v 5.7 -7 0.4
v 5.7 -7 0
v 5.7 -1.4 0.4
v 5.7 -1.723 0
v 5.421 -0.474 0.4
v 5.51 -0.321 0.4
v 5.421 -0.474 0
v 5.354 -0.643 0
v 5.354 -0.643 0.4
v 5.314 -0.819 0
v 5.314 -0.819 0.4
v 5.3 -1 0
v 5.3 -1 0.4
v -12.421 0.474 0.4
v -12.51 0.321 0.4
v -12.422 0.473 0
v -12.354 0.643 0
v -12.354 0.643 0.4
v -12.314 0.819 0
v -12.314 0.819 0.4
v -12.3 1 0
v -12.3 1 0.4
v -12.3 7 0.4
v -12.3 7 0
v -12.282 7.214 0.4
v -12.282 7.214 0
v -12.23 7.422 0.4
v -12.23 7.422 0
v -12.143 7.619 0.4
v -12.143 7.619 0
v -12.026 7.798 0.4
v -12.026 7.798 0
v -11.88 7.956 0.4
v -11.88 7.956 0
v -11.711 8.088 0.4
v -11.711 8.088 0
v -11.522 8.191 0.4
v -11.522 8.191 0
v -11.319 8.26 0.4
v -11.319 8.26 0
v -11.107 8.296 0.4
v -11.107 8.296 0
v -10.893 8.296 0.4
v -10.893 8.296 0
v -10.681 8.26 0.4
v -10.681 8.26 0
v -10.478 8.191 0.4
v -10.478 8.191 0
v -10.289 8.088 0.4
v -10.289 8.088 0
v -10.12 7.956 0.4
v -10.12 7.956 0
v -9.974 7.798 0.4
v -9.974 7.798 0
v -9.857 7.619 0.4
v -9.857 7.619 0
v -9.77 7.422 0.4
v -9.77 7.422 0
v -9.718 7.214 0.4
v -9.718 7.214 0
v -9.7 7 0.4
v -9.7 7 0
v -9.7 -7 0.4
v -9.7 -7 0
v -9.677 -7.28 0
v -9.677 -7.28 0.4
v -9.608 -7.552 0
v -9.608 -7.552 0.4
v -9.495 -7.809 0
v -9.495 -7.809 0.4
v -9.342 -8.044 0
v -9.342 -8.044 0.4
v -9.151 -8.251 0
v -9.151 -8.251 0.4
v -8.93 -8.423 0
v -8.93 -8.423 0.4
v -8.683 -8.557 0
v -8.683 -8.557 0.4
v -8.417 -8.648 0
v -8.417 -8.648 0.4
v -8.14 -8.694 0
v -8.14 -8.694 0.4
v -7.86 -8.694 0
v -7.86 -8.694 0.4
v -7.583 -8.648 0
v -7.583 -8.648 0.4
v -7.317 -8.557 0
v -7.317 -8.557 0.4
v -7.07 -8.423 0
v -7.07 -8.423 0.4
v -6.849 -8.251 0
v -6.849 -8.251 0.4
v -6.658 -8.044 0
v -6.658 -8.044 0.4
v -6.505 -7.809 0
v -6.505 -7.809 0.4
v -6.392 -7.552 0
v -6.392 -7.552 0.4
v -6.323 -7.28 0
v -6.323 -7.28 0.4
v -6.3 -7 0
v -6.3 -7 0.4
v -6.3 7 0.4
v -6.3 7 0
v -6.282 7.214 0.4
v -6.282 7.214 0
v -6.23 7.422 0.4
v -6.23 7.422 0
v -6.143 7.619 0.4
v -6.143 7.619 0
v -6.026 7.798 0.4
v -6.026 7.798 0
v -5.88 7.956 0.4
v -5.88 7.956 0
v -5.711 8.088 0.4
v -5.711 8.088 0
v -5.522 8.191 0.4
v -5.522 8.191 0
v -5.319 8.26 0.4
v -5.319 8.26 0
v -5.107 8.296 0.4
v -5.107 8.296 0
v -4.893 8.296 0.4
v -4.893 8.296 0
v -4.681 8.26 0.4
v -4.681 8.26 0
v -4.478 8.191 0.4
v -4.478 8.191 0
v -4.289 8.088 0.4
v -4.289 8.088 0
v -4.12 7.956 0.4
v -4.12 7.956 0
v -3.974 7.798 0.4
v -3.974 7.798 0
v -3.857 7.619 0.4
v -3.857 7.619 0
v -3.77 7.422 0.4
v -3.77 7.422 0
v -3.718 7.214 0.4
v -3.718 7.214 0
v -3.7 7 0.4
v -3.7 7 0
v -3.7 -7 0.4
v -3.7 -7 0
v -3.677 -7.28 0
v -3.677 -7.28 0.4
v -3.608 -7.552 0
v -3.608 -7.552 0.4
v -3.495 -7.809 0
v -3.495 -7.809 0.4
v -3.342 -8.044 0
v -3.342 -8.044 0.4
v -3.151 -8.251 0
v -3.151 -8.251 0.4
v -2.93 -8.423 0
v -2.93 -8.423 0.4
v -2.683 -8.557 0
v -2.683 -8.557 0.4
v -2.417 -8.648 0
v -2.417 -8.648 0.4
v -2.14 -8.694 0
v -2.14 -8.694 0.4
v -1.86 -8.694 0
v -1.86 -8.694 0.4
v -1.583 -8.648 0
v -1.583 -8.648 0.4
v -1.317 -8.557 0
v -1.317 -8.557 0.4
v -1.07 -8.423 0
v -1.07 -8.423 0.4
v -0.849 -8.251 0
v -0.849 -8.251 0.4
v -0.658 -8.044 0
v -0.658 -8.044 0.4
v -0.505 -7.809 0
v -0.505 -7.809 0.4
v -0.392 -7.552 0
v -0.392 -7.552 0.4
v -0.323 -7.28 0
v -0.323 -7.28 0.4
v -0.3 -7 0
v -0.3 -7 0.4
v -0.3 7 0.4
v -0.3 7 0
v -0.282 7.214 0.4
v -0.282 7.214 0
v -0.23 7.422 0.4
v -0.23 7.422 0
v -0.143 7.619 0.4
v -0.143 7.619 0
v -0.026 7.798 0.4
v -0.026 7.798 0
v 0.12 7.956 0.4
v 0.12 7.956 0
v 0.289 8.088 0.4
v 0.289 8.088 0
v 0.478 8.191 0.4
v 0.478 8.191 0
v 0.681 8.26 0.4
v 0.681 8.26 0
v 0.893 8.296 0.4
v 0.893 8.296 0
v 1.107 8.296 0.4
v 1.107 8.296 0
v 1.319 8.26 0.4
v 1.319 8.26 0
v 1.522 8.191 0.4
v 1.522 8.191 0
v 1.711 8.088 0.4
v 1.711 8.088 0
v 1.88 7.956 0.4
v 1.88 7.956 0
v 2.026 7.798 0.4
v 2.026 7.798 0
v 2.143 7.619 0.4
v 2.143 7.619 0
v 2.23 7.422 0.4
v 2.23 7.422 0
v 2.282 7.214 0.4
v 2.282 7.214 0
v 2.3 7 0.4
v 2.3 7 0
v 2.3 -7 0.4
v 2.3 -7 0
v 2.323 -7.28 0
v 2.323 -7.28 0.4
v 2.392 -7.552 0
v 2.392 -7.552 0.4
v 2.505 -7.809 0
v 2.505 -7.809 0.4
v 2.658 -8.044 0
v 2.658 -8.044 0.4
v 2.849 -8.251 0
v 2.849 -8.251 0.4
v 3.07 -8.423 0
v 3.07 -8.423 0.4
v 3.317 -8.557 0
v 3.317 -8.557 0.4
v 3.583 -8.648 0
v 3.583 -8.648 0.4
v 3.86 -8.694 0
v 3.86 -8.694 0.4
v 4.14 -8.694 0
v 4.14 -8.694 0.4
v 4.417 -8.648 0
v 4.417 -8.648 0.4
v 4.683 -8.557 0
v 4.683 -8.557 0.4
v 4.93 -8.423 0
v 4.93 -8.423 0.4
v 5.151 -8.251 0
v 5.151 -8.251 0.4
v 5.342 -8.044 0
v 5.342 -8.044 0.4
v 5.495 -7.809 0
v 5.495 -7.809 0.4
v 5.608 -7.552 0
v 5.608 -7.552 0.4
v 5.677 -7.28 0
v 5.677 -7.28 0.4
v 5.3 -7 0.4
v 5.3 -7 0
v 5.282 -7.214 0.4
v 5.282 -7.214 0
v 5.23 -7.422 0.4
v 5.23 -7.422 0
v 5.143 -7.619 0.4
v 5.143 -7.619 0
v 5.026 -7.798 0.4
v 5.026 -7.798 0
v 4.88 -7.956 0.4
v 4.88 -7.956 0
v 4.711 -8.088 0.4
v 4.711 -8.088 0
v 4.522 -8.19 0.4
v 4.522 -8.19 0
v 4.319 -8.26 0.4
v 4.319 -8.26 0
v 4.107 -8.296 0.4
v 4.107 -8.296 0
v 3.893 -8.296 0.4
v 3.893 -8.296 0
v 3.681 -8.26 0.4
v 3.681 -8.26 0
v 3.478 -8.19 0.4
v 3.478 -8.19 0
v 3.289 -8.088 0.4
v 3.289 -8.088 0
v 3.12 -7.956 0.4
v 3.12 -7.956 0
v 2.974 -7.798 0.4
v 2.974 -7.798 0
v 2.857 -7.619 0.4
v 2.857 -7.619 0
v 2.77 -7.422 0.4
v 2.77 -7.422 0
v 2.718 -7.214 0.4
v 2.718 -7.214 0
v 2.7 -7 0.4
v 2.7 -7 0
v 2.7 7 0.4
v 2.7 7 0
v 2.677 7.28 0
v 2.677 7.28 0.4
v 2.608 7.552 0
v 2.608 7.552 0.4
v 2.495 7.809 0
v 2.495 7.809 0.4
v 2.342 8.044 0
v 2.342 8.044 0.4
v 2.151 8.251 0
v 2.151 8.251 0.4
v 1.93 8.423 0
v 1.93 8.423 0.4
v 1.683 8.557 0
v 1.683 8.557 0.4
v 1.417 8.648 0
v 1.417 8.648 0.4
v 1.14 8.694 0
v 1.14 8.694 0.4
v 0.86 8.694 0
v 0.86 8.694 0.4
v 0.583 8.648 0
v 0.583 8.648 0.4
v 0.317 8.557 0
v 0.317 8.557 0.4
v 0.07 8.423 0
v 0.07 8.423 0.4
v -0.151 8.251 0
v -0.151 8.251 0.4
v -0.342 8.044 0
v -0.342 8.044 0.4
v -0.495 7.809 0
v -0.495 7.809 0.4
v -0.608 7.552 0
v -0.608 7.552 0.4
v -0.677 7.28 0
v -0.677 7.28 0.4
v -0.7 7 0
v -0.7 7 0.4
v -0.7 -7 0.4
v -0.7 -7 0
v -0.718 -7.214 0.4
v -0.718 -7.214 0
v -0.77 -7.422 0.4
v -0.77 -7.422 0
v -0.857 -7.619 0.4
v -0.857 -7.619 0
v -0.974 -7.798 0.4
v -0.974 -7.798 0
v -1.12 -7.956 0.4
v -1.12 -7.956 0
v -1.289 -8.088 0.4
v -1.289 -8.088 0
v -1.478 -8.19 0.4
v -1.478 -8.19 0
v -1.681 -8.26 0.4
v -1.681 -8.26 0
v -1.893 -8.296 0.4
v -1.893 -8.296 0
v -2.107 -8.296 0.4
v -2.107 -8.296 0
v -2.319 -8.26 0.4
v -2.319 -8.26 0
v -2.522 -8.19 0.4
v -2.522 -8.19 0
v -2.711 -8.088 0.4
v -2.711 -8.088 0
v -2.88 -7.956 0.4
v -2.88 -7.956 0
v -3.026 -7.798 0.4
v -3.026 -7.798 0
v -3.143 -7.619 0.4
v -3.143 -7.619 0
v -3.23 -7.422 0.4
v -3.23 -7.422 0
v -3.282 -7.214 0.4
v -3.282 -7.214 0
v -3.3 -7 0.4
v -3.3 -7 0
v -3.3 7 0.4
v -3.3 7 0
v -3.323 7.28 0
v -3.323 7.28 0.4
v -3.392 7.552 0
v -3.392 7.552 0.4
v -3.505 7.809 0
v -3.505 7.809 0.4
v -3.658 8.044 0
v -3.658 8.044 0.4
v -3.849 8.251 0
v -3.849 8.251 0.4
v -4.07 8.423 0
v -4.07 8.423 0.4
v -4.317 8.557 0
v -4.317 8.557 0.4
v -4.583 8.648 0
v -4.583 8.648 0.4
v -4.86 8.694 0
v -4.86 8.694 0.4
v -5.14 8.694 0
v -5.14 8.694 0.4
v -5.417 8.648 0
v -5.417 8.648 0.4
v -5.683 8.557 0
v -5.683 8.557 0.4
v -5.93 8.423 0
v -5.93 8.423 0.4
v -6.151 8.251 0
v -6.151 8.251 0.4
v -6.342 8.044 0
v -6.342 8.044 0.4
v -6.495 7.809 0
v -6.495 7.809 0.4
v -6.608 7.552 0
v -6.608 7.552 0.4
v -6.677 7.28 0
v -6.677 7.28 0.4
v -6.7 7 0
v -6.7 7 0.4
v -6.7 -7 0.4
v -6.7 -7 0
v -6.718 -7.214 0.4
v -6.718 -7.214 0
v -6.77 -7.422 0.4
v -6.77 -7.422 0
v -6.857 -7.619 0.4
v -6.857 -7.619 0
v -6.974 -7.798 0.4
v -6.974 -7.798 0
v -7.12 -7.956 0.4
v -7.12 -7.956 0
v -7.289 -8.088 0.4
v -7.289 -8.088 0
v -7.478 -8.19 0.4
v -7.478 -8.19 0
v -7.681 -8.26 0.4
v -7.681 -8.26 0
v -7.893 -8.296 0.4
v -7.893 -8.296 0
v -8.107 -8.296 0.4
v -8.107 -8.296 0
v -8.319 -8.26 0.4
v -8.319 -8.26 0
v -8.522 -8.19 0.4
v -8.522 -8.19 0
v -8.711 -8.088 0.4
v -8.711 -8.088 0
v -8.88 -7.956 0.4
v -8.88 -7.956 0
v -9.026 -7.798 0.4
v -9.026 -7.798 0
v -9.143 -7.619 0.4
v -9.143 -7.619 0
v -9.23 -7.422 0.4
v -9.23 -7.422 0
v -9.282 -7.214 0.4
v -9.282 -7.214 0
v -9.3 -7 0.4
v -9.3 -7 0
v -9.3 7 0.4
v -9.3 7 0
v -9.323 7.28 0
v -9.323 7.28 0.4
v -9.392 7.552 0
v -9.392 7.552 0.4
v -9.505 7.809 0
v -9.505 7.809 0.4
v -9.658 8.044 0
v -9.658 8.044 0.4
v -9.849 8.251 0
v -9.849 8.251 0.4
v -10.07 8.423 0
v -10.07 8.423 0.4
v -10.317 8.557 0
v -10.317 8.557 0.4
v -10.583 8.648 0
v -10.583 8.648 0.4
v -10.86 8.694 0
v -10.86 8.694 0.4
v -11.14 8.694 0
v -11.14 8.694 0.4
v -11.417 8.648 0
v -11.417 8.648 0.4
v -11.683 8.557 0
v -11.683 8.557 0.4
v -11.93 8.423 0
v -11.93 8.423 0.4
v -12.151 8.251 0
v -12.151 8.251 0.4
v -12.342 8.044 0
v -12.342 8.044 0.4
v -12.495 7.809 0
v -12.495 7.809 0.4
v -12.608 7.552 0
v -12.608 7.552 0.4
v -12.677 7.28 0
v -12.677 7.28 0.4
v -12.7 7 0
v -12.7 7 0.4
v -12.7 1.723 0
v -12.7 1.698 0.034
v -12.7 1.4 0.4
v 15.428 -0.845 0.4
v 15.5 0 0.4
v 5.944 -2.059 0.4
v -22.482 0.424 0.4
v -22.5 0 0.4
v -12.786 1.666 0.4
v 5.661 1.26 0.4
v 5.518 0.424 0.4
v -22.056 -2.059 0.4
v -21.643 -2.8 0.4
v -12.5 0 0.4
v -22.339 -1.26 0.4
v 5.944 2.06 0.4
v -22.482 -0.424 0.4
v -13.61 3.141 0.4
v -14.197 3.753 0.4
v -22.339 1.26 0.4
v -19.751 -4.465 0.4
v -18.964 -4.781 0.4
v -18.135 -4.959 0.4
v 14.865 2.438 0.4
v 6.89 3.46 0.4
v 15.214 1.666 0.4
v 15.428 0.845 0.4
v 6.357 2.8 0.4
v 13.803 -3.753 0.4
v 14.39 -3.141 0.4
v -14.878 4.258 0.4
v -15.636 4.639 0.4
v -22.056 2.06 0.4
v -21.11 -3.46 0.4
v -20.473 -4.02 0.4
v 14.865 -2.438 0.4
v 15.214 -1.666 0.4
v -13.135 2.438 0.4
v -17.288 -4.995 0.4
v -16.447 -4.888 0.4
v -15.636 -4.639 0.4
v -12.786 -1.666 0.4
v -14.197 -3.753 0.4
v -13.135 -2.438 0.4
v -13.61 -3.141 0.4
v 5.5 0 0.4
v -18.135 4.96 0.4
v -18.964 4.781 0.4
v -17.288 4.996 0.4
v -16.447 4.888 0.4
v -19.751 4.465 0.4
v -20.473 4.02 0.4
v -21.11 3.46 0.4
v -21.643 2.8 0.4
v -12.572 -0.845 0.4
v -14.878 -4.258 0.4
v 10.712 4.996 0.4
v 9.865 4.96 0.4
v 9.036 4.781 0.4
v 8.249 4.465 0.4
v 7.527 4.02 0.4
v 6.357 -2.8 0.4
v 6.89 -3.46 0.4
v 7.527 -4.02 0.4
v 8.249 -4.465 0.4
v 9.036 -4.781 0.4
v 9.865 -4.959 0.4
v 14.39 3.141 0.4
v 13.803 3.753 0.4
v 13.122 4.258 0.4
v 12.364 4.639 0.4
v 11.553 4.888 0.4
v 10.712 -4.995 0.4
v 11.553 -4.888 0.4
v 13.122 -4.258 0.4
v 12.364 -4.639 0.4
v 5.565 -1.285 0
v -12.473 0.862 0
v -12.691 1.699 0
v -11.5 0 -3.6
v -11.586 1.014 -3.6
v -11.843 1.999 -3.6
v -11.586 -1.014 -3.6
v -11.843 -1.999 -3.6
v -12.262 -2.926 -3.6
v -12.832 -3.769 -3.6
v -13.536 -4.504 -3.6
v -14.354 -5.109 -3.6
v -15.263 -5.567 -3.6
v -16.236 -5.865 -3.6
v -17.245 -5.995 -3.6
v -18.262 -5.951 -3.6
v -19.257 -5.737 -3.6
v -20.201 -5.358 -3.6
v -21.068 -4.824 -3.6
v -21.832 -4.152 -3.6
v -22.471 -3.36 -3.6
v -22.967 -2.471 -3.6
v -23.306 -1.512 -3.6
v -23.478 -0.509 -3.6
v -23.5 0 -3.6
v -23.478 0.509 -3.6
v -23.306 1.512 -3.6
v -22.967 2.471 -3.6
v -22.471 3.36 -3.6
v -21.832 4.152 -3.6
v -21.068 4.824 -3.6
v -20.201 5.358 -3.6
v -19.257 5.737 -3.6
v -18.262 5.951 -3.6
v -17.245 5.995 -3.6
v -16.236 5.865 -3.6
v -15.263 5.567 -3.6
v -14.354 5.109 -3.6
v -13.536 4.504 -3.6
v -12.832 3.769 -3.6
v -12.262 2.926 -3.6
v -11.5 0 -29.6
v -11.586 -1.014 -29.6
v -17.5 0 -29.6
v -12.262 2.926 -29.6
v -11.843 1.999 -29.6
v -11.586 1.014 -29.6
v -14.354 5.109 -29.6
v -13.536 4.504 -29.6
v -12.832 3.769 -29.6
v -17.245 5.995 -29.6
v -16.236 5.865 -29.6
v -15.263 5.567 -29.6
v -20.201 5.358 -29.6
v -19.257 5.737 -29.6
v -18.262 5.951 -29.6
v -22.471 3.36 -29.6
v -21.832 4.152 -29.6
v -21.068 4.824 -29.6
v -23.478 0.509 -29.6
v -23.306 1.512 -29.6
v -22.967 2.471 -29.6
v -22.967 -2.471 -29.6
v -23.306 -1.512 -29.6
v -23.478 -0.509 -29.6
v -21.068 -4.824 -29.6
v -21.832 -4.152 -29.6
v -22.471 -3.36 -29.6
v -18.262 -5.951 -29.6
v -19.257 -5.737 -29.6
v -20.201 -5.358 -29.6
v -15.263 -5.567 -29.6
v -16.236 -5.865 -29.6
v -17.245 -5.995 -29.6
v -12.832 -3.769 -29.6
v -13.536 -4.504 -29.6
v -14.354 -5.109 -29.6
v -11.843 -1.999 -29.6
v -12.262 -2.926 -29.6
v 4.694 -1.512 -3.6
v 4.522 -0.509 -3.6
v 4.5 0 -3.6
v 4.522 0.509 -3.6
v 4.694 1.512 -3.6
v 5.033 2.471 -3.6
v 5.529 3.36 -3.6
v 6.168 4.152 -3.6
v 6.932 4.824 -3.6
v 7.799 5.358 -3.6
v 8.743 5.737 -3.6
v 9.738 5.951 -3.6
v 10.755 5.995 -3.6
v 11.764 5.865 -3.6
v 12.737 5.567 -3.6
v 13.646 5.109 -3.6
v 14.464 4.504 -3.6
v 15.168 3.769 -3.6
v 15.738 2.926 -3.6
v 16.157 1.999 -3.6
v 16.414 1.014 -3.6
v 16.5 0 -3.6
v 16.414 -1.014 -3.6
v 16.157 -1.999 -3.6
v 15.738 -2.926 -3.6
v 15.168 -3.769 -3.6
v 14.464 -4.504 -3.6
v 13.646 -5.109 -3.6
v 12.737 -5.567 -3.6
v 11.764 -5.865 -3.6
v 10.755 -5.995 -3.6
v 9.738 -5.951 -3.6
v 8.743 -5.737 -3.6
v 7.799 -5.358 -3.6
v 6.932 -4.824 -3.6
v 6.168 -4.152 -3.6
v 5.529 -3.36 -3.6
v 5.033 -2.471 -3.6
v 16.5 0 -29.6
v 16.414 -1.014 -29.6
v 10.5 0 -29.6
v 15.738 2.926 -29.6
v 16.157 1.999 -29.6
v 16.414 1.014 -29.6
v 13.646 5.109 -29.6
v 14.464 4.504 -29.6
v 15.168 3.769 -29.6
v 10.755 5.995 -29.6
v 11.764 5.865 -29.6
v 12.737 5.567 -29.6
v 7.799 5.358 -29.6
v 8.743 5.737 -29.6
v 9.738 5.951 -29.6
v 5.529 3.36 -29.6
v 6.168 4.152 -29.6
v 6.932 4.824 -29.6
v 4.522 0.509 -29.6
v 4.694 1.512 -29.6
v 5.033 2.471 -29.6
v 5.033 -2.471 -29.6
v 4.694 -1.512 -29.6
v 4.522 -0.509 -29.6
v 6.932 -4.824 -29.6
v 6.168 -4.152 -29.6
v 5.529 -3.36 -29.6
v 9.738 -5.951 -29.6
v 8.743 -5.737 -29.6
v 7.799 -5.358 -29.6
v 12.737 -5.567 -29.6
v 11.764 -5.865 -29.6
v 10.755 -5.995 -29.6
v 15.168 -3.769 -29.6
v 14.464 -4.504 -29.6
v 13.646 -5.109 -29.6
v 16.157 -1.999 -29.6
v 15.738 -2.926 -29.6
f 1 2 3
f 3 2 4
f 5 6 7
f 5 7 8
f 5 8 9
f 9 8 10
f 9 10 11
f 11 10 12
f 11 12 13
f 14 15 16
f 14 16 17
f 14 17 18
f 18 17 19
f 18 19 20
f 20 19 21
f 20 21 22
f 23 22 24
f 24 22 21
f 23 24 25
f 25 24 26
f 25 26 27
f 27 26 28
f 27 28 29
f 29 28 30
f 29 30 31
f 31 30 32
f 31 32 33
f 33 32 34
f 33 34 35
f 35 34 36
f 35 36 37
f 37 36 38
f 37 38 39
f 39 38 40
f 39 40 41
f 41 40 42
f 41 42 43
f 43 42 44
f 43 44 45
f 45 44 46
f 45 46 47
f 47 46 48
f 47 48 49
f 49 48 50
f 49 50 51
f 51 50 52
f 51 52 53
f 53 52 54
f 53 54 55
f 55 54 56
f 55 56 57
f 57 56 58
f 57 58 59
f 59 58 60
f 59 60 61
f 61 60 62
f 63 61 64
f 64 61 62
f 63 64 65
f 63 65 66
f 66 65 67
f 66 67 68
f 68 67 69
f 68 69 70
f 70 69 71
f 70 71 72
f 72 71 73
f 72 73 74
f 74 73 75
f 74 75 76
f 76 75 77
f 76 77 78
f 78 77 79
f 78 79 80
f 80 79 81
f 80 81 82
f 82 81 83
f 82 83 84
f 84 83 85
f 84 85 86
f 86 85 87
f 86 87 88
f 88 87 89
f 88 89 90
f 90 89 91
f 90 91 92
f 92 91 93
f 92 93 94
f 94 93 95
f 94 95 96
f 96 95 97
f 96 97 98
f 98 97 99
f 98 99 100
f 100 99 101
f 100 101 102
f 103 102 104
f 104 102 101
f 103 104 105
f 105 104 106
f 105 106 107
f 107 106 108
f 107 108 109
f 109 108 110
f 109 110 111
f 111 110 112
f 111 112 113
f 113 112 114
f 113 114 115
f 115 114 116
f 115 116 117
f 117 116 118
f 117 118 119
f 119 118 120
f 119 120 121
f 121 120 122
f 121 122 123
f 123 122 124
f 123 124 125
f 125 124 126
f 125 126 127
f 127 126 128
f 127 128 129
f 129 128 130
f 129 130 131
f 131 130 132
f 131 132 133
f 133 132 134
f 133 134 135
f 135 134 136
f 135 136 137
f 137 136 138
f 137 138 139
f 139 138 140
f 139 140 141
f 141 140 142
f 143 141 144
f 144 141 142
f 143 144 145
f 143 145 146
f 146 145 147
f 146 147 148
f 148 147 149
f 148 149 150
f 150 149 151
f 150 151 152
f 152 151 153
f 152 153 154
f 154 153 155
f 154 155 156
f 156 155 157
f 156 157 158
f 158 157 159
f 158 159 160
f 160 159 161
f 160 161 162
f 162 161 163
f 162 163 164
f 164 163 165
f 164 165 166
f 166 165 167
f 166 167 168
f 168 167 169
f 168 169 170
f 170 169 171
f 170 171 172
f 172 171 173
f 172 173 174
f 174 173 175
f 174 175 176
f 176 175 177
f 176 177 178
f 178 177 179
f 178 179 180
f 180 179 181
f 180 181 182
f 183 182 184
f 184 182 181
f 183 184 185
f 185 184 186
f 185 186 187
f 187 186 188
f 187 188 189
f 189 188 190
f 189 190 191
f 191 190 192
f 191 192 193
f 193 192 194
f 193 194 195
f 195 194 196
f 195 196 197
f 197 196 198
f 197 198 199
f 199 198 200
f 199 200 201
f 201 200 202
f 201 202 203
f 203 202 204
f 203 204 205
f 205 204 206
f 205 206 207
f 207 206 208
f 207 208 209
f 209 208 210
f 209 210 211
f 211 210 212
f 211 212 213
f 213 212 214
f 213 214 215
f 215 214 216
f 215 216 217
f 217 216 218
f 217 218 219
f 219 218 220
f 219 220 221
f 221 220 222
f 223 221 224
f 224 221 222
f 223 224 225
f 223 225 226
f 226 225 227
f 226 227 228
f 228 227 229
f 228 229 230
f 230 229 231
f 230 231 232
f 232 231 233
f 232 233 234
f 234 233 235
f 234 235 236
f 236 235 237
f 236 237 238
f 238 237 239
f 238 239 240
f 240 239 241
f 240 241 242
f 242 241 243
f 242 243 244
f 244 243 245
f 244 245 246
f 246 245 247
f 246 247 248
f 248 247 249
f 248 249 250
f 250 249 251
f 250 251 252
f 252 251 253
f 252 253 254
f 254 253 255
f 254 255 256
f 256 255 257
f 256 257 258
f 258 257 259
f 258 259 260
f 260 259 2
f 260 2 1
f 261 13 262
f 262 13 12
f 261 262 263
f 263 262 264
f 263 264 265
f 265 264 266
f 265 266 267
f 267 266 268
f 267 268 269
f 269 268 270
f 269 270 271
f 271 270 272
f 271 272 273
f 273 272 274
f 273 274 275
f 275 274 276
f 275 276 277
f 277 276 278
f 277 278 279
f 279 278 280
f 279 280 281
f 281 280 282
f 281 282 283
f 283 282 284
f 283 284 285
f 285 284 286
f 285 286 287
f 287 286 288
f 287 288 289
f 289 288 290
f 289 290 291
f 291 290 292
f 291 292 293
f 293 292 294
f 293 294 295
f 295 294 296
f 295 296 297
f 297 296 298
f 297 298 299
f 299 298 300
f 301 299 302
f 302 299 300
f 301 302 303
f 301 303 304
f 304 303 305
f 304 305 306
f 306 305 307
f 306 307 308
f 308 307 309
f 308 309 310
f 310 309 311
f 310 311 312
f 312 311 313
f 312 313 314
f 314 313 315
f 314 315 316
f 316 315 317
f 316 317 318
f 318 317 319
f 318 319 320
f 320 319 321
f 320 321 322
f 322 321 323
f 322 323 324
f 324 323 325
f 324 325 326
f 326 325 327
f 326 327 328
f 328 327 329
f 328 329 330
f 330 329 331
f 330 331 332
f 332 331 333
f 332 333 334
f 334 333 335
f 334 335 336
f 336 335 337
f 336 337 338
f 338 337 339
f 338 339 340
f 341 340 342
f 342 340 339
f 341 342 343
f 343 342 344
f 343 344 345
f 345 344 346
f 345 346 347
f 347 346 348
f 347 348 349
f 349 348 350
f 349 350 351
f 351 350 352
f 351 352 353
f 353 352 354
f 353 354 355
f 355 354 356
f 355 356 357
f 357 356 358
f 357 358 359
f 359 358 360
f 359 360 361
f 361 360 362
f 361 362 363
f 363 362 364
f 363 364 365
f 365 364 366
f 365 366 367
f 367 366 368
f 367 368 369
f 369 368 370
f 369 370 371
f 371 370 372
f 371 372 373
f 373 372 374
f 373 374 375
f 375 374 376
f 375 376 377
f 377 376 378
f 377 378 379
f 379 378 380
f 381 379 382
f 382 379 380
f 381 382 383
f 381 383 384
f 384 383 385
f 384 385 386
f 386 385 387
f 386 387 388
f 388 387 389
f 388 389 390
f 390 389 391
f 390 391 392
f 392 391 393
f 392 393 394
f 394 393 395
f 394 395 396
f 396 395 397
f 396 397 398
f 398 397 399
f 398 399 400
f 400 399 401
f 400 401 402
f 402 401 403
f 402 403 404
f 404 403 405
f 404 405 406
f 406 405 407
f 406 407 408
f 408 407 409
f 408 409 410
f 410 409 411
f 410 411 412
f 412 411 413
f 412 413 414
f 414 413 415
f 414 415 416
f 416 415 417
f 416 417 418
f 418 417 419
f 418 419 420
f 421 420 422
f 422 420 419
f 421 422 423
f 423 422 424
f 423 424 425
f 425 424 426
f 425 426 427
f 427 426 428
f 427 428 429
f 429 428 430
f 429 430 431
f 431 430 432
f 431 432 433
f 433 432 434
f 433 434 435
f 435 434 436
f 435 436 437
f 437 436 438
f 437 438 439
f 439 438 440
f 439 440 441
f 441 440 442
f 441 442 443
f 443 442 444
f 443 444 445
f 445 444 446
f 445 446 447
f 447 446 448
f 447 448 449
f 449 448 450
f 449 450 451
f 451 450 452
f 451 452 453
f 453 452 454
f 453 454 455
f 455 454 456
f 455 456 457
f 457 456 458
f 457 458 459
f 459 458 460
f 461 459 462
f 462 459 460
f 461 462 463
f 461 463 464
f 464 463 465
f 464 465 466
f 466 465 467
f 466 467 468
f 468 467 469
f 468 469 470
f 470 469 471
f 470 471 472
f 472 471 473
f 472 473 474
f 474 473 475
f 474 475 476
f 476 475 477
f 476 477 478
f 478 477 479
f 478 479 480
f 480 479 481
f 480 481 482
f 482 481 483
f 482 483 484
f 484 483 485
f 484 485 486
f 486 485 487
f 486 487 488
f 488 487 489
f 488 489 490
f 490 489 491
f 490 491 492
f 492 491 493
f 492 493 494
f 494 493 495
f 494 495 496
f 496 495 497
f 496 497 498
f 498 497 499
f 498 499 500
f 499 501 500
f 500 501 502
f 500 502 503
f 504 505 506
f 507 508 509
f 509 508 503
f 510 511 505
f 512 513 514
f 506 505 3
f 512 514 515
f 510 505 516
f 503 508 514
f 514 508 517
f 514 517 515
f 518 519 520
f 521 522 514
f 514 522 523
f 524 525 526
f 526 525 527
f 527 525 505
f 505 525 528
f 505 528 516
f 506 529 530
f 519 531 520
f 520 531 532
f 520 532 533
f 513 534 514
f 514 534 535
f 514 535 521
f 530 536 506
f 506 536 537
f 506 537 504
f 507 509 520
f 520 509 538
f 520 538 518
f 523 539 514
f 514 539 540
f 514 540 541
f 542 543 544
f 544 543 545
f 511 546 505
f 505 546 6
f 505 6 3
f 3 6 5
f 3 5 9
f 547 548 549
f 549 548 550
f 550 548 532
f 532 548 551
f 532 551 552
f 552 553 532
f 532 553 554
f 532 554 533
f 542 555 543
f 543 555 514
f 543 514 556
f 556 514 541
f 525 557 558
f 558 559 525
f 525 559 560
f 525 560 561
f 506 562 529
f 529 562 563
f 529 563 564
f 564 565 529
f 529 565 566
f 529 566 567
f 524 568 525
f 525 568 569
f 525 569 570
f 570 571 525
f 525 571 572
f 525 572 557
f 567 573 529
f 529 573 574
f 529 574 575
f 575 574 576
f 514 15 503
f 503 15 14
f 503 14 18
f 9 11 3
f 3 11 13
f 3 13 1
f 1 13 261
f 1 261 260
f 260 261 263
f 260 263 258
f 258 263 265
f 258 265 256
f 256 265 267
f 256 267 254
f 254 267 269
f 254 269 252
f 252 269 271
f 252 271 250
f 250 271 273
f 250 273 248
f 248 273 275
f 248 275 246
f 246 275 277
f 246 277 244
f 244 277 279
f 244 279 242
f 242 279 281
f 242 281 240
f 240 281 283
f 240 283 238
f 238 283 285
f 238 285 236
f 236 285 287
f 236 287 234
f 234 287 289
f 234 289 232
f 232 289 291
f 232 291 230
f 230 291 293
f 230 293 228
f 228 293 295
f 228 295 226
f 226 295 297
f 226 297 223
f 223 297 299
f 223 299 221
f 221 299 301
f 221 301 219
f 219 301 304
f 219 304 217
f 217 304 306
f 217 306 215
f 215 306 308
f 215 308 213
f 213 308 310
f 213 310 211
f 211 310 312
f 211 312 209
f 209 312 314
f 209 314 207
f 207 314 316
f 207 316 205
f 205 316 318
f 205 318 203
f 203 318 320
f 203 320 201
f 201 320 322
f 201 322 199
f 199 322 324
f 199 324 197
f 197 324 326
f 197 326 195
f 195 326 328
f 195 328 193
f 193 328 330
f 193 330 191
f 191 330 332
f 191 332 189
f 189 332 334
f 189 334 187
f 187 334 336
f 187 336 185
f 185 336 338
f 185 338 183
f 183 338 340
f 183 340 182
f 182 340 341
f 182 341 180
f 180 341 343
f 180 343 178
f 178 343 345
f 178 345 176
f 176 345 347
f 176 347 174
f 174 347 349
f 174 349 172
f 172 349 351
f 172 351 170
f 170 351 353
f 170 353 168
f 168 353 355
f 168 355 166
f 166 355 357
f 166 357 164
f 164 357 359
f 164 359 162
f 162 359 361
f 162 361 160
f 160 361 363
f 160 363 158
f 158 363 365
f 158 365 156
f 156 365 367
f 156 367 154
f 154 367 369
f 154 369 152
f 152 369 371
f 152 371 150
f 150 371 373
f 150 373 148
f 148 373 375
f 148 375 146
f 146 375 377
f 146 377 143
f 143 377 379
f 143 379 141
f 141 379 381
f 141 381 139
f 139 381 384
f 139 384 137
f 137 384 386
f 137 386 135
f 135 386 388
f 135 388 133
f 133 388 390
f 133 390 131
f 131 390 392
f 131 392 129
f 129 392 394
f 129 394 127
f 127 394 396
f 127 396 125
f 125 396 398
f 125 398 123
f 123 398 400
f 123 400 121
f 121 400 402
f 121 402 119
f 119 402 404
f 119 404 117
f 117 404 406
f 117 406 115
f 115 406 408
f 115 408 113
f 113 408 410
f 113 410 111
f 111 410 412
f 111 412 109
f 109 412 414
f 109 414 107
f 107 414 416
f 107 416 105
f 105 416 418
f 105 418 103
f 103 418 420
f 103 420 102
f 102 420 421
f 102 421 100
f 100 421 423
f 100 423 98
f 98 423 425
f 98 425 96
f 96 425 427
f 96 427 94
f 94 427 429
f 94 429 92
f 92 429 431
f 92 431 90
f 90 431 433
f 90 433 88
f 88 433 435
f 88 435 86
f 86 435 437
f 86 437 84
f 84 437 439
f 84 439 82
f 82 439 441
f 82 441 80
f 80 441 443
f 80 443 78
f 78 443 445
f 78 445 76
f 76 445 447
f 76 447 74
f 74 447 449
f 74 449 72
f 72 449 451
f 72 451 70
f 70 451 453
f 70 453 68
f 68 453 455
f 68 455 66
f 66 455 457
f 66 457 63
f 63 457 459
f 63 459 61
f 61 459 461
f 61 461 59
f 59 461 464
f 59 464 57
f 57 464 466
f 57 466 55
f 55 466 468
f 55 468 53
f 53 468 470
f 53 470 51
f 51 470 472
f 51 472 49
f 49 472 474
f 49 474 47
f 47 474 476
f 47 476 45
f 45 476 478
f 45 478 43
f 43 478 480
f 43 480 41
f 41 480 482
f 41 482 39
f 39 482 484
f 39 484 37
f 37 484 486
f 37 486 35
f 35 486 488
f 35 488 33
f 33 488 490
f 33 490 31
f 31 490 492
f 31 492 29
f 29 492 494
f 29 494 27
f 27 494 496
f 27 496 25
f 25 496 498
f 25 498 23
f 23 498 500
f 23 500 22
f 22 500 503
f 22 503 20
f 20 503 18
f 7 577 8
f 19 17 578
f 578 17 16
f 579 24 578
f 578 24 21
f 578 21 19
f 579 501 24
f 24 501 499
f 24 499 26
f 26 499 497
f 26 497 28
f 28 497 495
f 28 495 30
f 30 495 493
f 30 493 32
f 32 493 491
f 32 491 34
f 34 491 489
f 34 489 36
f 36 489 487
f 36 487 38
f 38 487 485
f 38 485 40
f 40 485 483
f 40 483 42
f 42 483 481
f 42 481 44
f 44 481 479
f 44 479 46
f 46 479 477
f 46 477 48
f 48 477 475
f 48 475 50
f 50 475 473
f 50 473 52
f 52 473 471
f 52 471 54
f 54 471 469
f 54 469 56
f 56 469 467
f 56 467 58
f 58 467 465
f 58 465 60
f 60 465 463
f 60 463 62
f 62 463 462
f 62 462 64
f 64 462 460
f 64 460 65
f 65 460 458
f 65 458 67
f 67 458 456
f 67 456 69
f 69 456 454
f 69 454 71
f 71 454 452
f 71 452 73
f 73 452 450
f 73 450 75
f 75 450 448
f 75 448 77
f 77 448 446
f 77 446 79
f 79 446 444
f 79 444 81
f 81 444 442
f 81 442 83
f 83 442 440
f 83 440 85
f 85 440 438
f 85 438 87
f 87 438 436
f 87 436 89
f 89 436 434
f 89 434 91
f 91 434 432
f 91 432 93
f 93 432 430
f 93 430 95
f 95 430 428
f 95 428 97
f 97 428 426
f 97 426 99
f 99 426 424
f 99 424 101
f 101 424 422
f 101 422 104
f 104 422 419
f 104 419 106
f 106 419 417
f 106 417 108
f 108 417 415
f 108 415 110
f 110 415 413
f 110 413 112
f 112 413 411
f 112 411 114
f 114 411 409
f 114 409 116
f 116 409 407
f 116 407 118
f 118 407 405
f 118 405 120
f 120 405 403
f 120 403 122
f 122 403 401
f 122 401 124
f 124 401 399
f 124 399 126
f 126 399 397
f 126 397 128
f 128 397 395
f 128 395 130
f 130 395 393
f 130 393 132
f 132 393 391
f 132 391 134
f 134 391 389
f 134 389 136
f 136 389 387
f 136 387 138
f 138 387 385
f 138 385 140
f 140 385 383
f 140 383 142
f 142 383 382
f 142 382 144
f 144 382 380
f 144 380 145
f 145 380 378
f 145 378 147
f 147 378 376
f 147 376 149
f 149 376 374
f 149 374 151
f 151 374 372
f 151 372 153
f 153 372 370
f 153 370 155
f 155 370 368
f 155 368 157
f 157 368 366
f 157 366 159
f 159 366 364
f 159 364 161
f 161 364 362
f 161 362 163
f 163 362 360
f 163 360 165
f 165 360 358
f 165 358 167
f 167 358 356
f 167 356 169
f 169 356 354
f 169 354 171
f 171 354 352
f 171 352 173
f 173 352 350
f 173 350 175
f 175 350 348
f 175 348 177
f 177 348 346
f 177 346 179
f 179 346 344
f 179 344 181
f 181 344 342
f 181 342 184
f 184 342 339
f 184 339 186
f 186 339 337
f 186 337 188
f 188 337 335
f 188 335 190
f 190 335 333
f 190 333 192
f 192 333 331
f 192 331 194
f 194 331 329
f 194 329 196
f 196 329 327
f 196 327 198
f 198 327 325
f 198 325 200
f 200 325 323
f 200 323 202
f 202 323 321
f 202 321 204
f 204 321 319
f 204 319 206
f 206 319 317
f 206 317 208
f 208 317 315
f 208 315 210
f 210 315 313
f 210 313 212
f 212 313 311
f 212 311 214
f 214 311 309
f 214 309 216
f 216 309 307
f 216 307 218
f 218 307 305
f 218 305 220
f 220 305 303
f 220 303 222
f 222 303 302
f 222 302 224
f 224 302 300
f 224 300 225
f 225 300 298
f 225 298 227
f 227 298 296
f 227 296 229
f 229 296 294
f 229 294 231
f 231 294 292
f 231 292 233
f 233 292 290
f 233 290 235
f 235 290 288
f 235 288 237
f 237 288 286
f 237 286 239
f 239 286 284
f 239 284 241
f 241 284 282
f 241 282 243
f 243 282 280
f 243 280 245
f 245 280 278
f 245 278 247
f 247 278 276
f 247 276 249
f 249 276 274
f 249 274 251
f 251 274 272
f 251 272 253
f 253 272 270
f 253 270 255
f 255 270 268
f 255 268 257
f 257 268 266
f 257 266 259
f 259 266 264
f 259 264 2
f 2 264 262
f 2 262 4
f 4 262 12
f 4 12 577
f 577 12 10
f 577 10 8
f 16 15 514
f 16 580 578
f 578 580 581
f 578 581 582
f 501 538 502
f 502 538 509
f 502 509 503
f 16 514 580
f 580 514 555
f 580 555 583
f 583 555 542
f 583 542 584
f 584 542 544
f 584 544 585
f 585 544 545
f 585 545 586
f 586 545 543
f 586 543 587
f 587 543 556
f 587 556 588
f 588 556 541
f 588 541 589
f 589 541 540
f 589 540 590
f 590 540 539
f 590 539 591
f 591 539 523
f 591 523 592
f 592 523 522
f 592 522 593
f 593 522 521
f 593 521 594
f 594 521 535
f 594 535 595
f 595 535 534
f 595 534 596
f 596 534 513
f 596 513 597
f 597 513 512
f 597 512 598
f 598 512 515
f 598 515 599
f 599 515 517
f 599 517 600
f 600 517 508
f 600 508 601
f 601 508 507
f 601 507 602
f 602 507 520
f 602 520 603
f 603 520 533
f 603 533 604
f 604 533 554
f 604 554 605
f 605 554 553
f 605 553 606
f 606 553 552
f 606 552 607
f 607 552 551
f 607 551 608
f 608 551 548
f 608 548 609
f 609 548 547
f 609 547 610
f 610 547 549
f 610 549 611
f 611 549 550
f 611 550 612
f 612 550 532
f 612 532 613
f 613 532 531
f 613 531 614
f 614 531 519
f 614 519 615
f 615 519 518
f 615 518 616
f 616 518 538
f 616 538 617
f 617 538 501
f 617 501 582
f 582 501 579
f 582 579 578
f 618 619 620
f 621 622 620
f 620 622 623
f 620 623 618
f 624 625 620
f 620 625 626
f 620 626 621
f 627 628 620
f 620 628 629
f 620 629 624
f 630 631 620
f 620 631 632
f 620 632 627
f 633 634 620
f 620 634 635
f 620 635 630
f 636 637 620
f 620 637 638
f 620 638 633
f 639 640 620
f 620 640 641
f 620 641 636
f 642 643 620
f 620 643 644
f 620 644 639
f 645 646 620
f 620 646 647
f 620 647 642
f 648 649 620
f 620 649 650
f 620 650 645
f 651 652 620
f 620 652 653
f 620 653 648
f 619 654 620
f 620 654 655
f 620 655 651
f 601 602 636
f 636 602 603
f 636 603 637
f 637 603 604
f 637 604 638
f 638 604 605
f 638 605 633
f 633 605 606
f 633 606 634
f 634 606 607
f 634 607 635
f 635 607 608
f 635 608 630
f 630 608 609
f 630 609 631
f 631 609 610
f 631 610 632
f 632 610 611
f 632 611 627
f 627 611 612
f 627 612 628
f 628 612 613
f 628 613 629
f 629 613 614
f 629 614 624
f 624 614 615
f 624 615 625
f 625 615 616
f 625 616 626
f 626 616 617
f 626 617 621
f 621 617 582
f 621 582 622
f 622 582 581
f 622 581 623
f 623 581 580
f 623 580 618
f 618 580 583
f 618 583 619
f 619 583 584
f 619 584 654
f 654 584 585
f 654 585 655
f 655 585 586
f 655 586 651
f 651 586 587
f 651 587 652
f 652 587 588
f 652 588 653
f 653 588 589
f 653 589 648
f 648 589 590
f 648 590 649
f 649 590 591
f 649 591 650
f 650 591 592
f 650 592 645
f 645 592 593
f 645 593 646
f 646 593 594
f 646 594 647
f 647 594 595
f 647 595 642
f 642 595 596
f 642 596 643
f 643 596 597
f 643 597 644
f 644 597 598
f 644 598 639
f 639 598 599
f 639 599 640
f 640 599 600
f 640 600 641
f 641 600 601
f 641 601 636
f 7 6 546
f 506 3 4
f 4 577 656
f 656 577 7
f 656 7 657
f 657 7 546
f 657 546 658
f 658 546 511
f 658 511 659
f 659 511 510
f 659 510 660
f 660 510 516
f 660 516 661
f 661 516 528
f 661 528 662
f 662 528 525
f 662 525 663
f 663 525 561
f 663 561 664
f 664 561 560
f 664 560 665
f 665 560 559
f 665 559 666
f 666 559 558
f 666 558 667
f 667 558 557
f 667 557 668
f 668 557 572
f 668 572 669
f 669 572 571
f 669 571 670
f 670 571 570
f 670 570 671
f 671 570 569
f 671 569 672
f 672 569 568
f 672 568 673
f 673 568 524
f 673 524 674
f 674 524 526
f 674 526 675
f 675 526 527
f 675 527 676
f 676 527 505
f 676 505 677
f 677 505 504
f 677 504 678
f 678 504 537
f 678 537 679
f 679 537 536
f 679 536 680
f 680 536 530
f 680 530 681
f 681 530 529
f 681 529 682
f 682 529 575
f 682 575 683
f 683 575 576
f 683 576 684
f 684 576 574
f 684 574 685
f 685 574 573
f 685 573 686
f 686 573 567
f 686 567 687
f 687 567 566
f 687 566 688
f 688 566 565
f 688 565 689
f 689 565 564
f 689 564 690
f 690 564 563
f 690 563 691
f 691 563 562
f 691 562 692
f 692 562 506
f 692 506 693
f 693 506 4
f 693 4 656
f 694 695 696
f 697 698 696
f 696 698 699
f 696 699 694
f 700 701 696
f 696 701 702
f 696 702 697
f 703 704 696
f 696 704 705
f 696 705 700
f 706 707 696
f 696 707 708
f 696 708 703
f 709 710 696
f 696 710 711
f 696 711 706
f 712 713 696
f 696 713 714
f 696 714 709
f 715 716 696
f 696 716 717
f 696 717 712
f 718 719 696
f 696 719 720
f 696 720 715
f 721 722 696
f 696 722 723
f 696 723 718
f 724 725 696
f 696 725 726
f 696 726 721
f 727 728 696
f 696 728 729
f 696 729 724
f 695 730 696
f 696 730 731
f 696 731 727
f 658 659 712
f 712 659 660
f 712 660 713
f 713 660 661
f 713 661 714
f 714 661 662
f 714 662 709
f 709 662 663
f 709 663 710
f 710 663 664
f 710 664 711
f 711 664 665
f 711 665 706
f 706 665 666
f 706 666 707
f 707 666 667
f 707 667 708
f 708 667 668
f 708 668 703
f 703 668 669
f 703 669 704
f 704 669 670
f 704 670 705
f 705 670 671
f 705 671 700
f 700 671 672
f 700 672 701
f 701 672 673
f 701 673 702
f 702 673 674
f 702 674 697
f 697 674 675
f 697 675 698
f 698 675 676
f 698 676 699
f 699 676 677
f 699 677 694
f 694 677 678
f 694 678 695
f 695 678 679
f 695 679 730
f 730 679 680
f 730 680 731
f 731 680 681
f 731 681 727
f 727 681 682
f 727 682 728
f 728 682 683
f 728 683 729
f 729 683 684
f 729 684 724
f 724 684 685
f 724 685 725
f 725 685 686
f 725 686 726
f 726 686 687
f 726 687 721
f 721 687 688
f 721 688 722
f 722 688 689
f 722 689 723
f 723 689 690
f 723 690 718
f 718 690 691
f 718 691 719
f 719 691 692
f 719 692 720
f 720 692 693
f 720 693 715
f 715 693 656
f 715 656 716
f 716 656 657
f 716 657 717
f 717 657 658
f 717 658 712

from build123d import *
from build123d.topology import SkipClean

# Parameters (mm, degrees)
BOSS_EXTRUDE1_DEPTH = 0.4


with BuildPart() as part:
    # Sketch2 → Boss-Extrude1 (new body)
    with BuildSketch(Plane.XY):
        with BuildLine():
            Line((-17.5, -0.2), (-13.5, -0.2))
            ThreePointArc((-13.5, -0.2), (-12.651471863, 0.151471863), (-12.3, 1))
            Line((-12.3, 1), (-12.3, 7))
            ThreePointArc((-12.3, 7), (-11, 8.3), (-9.7, 7))
            Line((-9.7, 7), (-9.7, 0))
            Line((-9.7, 0), (-9.7, -7))
            ThreePointArc((-9.7, -7), (-8, -8.7), (-6.3, -7))
            Line((-6.3, -7), (-6.3, 0))
            Line((-6.3, 0), (-6.3, 7))
            ThreePointArc((-6.3, 7), (-5, 8.3), (-3.7, 7))
            Line((-3.7, 7), (-3.7, 0))
            Line((-3.7, 0), (-3.7, -7))
            ThreePointArc((-3.7, -7), (-2, -8.7), (-0.3, -7))
            Line((-0.3, -7), (-0.3, 0))
            Line((-0.3, 0), (-0.3, 7))
            ThreePointArc((-0.3, 7), (1, 8.3), (2.3, 7))
            Line((2.3, 7), (2.3, 0))
            Line((2.3, 0), (2.3, -7))
            ThreePointArc((2.3, -7), (4, -8.7), (5.7, -7))
            Line((5.7, -7), (5.7, -1))
            ThreePointArc((5.7, -1), (5.934314575, -0.434314575), (6.5, -0.2))
            Line((6.5, -0.2), (10.5, -0.2))
            ThreePointArc((10.5, -0.2), (10.7, 0), (10.5, 0.2))
            Line((10.5, 0.2), (6.5, 0.2))
            ThreePointArc((6.5, 0.2), (5.651471863, -0.151471863), (5.3, -1))
            Line((5.3, -1), (5.3, -7))
            ThreePointArc((5.3, -7), (4, -8.3), (2.7, -7))
            Line((2.7, -7), (2.7, 0))
            Line((2.7, 0), (2.7, 7))
            ThreePointArc((2.7, 7), (1, 8.7), (-0.7, 7))
            Line((-0.7, 7), (-0.7, 0))
            Line((-0.7, 0), (-0.7, -7))
            ThreePointArc((-0.7, -7), (-2, -8.3), (-3.3, -7))
            Line((-3.3, -7), (-3.3, 0))
            Line((-3.3, 0), (-3.3, 7))
            ThreePointArc((-3.3, 7), (-5, 8.7), (-6.7, 7))
            Line((-6.7, 7), (-6.7, 0))
            Line((-6.7, 0), (-6.7, -7))
            ThreePointArc((-6.7, -7), (-8, -8.3), (-9.3, -7))
            Line((-9.3, -7), (-9.3, 0))
            Line((-9.3, 0), (-9.3, 7))
            ThreePointArc((-9.3, 7), (-11, 8.7), (-12.7, 7))
            Line((-12.7, 7), (-12.7, 1))
            ThreePointArc((-12.7, 1), (-12.934314575, 0.434314575), (-13.5, 0.2))
            Line((-13.5, 0.2), (-17.5, 0.2))
            ThreePointArc((-17.5, 0.2), (-17.7, 0), (-17.5, -0.2))
        make_face()
    extrude(amount=BOSS_EXTRUDE1_DEPTH)

    # Sketch3 → Revolve1 (revolve)
    with SkipClean():  # the faces are left unmerged after this step: merging them gives an invalid solid
        with BuildSketch(Plane(origin=(0, 0, 0), x_dir=(-1, 0, 0), z_dir=(0, -1, 0)), mode=Mode.PRIVATE) as revolve1_sk:
            Polygon((17.5, -0.4), (22.5, -0.4), (23.5, 3.6), (23.5, 29.6), (17.5, 29.6), align=None)
        revolve(revolve1_sk.sketch.rotate(Axis((-17.5, 0, 0.4), (0, 0, -1)), 160.250078189), axis=Axis((-17.5, 0, 0.4), (0, 0, -1)))

    # Sketch4 → Revolve2 (revolve)
    with SkipClean():  # the faces are left unmerged after this step: merging them gives an invalid solid
        with BuildSketch(Plane(origin=(0, 0, 0), x_dir=(-1, 0, 0), z_dir=(0, -1, 0)), mode=Mode.PRIVATE) as revolve2_sk:
            Polygon((-10.5, -0.4), (-15.5, -0.4), (-16.5, 3.6), (-16.5, 29.6), (-10.5, 29.6), align=None)
        revolve(revolve2_sk.sketch.rotate(Axis((10.5, 0, 0.4), (0, 0, -1)), 176.315074658), axis=Axis((10.5, 0, 0.4), (0, 0, -1)))


solid = part.part
